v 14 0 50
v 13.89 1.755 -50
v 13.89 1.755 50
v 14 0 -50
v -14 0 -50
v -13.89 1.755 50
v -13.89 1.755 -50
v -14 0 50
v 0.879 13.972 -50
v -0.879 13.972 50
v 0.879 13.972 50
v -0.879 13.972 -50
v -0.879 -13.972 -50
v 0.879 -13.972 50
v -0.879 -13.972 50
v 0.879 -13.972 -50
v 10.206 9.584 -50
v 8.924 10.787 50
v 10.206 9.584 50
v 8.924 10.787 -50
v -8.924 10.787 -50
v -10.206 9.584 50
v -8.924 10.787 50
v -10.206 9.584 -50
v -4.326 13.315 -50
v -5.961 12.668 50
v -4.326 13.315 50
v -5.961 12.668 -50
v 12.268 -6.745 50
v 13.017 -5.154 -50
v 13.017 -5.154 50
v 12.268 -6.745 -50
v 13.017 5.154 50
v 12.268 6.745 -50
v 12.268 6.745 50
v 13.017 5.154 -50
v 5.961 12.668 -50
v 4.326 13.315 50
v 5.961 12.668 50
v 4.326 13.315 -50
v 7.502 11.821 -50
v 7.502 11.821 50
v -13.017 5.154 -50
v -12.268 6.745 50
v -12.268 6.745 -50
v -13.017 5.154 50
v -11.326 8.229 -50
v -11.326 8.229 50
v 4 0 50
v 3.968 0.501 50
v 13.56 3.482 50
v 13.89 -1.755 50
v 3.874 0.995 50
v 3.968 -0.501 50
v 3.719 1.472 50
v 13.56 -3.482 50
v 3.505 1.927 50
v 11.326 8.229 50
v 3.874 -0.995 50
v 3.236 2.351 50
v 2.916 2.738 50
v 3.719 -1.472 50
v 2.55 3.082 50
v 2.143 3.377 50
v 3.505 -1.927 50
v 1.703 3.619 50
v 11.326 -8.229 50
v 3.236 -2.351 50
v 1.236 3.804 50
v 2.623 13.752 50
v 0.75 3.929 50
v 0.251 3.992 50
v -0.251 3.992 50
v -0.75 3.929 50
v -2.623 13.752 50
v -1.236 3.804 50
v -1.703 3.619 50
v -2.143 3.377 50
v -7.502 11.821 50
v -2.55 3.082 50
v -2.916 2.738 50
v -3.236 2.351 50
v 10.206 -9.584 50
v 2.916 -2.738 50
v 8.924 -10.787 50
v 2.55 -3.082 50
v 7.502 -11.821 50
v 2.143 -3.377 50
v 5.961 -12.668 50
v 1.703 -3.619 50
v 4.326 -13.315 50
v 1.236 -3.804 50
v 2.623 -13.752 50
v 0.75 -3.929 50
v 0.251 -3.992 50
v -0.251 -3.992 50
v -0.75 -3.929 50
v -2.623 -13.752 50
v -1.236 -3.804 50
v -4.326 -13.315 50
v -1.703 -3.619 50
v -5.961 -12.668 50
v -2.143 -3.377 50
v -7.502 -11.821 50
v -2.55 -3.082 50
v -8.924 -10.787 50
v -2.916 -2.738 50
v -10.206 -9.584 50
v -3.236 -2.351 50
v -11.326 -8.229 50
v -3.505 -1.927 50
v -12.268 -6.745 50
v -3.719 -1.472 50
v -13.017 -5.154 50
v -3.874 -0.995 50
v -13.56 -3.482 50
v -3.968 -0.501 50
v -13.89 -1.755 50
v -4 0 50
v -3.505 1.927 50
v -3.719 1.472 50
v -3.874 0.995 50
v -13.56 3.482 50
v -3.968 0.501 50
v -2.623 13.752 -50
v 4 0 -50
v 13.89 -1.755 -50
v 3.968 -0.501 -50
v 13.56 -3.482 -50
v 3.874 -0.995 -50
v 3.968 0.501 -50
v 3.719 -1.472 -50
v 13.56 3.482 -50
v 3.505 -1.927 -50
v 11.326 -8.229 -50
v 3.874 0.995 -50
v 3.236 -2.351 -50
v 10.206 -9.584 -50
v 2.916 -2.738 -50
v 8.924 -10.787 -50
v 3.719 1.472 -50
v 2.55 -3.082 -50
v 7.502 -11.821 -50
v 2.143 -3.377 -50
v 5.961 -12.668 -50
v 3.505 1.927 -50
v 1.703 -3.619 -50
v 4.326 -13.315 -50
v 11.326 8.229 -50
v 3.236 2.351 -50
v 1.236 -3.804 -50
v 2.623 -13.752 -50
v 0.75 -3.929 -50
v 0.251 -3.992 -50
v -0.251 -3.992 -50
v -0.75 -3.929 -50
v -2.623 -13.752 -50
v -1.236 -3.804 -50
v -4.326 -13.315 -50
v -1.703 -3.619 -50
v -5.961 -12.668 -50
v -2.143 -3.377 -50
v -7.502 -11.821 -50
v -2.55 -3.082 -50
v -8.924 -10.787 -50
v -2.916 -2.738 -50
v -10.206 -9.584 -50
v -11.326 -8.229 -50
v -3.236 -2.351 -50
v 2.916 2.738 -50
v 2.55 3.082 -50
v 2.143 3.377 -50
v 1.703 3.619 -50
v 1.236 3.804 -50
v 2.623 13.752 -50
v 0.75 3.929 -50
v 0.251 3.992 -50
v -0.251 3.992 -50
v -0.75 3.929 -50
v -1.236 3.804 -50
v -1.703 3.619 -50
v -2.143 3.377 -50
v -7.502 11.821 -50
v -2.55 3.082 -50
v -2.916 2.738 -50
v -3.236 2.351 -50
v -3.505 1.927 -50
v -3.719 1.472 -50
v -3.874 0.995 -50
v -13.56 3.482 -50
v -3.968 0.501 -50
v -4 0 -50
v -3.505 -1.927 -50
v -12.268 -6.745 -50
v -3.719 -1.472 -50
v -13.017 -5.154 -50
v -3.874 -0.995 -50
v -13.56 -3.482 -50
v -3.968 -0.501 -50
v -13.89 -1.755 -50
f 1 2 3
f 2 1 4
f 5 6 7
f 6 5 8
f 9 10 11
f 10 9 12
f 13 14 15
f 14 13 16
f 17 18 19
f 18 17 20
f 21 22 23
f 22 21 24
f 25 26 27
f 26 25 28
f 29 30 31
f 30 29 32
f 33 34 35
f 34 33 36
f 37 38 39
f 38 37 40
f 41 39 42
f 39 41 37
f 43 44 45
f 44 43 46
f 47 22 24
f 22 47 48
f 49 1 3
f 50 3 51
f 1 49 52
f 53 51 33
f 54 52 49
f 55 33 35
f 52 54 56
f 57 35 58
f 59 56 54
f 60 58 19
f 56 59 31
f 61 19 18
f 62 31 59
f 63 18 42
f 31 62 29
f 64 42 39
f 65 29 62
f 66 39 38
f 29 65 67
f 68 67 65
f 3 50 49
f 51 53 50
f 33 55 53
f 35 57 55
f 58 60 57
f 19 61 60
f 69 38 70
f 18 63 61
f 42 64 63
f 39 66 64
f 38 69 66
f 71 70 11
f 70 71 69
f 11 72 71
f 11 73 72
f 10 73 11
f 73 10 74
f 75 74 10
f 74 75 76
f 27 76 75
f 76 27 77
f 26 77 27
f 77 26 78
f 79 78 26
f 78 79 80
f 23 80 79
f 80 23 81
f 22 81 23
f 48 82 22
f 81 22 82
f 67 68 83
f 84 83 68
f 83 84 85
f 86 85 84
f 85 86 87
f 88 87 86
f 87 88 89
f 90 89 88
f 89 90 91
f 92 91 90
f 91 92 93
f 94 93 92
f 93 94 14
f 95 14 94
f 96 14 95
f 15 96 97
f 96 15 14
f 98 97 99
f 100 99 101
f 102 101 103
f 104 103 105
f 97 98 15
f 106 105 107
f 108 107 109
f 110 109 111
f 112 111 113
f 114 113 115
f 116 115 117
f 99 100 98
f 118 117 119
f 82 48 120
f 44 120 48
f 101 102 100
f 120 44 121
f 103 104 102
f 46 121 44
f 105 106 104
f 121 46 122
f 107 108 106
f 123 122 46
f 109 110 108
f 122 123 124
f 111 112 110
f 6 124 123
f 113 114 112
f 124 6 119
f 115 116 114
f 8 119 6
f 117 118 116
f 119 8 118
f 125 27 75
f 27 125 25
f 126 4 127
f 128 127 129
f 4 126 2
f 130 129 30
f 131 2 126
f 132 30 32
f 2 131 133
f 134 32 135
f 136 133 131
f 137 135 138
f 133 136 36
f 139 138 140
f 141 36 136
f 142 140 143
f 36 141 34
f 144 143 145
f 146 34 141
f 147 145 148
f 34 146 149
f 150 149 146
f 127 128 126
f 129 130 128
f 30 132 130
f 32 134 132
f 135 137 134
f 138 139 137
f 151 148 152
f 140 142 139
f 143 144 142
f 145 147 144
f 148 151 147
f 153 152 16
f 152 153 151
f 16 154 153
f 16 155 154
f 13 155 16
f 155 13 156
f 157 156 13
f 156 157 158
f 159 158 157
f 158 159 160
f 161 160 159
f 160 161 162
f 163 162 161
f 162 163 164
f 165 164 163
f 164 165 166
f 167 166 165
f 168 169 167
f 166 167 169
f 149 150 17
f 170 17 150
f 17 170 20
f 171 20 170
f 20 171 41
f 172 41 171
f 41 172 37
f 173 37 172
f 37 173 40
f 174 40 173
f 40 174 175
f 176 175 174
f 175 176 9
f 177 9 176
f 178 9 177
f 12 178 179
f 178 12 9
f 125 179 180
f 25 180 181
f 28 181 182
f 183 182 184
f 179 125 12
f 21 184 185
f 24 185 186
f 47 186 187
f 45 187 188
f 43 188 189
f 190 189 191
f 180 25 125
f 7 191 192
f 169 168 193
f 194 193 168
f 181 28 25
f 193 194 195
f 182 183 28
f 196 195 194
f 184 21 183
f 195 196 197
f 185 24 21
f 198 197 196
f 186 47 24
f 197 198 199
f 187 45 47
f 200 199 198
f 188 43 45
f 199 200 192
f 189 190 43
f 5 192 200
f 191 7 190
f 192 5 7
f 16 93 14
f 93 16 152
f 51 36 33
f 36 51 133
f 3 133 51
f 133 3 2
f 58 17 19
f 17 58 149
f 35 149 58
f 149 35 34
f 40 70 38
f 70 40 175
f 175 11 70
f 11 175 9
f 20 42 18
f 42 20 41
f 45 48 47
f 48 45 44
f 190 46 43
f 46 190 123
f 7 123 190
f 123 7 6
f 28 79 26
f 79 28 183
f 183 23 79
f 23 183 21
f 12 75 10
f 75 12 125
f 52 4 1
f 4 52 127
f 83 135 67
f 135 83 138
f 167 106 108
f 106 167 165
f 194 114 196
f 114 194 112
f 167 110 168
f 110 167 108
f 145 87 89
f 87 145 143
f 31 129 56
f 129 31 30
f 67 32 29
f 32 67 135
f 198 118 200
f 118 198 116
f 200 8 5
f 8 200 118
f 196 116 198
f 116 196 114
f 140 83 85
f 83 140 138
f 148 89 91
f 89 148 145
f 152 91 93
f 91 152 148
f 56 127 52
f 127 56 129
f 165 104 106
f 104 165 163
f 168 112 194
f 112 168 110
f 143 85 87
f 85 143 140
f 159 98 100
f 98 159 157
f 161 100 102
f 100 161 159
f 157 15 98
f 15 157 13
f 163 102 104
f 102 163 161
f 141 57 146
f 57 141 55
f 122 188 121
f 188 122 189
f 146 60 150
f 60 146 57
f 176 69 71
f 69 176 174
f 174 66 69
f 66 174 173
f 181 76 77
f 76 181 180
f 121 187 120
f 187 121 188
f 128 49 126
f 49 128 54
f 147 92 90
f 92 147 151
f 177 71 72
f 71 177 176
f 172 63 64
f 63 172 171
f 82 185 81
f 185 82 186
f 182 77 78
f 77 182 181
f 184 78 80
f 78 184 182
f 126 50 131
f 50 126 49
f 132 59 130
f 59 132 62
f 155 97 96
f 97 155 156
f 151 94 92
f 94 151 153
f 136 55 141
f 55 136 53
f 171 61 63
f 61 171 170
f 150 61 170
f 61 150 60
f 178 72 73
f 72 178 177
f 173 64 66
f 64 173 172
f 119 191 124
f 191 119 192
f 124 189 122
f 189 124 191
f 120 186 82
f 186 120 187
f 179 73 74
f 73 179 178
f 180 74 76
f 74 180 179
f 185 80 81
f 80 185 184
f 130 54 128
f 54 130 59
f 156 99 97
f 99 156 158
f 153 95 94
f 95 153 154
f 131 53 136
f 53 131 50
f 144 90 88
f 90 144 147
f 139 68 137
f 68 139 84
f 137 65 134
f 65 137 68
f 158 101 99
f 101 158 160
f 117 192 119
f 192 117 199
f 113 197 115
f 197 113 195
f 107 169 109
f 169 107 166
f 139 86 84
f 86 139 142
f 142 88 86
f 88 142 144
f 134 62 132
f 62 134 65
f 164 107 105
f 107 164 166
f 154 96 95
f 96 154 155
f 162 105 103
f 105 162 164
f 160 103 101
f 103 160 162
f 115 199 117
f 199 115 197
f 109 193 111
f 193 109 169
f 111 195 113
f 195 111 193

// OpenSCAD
$fn = 50;


difference() {
	union() {
		translate(v = [0, 0, -50.0000000000]) {
			cylinder(h = 100, r = 14.0000000000);
		}
	}
	union() {
		translate(v = [0, 0, -100.0000000000]) {
			cylinder(h = 200, r = 4.0000000000);
		}
	}
}
